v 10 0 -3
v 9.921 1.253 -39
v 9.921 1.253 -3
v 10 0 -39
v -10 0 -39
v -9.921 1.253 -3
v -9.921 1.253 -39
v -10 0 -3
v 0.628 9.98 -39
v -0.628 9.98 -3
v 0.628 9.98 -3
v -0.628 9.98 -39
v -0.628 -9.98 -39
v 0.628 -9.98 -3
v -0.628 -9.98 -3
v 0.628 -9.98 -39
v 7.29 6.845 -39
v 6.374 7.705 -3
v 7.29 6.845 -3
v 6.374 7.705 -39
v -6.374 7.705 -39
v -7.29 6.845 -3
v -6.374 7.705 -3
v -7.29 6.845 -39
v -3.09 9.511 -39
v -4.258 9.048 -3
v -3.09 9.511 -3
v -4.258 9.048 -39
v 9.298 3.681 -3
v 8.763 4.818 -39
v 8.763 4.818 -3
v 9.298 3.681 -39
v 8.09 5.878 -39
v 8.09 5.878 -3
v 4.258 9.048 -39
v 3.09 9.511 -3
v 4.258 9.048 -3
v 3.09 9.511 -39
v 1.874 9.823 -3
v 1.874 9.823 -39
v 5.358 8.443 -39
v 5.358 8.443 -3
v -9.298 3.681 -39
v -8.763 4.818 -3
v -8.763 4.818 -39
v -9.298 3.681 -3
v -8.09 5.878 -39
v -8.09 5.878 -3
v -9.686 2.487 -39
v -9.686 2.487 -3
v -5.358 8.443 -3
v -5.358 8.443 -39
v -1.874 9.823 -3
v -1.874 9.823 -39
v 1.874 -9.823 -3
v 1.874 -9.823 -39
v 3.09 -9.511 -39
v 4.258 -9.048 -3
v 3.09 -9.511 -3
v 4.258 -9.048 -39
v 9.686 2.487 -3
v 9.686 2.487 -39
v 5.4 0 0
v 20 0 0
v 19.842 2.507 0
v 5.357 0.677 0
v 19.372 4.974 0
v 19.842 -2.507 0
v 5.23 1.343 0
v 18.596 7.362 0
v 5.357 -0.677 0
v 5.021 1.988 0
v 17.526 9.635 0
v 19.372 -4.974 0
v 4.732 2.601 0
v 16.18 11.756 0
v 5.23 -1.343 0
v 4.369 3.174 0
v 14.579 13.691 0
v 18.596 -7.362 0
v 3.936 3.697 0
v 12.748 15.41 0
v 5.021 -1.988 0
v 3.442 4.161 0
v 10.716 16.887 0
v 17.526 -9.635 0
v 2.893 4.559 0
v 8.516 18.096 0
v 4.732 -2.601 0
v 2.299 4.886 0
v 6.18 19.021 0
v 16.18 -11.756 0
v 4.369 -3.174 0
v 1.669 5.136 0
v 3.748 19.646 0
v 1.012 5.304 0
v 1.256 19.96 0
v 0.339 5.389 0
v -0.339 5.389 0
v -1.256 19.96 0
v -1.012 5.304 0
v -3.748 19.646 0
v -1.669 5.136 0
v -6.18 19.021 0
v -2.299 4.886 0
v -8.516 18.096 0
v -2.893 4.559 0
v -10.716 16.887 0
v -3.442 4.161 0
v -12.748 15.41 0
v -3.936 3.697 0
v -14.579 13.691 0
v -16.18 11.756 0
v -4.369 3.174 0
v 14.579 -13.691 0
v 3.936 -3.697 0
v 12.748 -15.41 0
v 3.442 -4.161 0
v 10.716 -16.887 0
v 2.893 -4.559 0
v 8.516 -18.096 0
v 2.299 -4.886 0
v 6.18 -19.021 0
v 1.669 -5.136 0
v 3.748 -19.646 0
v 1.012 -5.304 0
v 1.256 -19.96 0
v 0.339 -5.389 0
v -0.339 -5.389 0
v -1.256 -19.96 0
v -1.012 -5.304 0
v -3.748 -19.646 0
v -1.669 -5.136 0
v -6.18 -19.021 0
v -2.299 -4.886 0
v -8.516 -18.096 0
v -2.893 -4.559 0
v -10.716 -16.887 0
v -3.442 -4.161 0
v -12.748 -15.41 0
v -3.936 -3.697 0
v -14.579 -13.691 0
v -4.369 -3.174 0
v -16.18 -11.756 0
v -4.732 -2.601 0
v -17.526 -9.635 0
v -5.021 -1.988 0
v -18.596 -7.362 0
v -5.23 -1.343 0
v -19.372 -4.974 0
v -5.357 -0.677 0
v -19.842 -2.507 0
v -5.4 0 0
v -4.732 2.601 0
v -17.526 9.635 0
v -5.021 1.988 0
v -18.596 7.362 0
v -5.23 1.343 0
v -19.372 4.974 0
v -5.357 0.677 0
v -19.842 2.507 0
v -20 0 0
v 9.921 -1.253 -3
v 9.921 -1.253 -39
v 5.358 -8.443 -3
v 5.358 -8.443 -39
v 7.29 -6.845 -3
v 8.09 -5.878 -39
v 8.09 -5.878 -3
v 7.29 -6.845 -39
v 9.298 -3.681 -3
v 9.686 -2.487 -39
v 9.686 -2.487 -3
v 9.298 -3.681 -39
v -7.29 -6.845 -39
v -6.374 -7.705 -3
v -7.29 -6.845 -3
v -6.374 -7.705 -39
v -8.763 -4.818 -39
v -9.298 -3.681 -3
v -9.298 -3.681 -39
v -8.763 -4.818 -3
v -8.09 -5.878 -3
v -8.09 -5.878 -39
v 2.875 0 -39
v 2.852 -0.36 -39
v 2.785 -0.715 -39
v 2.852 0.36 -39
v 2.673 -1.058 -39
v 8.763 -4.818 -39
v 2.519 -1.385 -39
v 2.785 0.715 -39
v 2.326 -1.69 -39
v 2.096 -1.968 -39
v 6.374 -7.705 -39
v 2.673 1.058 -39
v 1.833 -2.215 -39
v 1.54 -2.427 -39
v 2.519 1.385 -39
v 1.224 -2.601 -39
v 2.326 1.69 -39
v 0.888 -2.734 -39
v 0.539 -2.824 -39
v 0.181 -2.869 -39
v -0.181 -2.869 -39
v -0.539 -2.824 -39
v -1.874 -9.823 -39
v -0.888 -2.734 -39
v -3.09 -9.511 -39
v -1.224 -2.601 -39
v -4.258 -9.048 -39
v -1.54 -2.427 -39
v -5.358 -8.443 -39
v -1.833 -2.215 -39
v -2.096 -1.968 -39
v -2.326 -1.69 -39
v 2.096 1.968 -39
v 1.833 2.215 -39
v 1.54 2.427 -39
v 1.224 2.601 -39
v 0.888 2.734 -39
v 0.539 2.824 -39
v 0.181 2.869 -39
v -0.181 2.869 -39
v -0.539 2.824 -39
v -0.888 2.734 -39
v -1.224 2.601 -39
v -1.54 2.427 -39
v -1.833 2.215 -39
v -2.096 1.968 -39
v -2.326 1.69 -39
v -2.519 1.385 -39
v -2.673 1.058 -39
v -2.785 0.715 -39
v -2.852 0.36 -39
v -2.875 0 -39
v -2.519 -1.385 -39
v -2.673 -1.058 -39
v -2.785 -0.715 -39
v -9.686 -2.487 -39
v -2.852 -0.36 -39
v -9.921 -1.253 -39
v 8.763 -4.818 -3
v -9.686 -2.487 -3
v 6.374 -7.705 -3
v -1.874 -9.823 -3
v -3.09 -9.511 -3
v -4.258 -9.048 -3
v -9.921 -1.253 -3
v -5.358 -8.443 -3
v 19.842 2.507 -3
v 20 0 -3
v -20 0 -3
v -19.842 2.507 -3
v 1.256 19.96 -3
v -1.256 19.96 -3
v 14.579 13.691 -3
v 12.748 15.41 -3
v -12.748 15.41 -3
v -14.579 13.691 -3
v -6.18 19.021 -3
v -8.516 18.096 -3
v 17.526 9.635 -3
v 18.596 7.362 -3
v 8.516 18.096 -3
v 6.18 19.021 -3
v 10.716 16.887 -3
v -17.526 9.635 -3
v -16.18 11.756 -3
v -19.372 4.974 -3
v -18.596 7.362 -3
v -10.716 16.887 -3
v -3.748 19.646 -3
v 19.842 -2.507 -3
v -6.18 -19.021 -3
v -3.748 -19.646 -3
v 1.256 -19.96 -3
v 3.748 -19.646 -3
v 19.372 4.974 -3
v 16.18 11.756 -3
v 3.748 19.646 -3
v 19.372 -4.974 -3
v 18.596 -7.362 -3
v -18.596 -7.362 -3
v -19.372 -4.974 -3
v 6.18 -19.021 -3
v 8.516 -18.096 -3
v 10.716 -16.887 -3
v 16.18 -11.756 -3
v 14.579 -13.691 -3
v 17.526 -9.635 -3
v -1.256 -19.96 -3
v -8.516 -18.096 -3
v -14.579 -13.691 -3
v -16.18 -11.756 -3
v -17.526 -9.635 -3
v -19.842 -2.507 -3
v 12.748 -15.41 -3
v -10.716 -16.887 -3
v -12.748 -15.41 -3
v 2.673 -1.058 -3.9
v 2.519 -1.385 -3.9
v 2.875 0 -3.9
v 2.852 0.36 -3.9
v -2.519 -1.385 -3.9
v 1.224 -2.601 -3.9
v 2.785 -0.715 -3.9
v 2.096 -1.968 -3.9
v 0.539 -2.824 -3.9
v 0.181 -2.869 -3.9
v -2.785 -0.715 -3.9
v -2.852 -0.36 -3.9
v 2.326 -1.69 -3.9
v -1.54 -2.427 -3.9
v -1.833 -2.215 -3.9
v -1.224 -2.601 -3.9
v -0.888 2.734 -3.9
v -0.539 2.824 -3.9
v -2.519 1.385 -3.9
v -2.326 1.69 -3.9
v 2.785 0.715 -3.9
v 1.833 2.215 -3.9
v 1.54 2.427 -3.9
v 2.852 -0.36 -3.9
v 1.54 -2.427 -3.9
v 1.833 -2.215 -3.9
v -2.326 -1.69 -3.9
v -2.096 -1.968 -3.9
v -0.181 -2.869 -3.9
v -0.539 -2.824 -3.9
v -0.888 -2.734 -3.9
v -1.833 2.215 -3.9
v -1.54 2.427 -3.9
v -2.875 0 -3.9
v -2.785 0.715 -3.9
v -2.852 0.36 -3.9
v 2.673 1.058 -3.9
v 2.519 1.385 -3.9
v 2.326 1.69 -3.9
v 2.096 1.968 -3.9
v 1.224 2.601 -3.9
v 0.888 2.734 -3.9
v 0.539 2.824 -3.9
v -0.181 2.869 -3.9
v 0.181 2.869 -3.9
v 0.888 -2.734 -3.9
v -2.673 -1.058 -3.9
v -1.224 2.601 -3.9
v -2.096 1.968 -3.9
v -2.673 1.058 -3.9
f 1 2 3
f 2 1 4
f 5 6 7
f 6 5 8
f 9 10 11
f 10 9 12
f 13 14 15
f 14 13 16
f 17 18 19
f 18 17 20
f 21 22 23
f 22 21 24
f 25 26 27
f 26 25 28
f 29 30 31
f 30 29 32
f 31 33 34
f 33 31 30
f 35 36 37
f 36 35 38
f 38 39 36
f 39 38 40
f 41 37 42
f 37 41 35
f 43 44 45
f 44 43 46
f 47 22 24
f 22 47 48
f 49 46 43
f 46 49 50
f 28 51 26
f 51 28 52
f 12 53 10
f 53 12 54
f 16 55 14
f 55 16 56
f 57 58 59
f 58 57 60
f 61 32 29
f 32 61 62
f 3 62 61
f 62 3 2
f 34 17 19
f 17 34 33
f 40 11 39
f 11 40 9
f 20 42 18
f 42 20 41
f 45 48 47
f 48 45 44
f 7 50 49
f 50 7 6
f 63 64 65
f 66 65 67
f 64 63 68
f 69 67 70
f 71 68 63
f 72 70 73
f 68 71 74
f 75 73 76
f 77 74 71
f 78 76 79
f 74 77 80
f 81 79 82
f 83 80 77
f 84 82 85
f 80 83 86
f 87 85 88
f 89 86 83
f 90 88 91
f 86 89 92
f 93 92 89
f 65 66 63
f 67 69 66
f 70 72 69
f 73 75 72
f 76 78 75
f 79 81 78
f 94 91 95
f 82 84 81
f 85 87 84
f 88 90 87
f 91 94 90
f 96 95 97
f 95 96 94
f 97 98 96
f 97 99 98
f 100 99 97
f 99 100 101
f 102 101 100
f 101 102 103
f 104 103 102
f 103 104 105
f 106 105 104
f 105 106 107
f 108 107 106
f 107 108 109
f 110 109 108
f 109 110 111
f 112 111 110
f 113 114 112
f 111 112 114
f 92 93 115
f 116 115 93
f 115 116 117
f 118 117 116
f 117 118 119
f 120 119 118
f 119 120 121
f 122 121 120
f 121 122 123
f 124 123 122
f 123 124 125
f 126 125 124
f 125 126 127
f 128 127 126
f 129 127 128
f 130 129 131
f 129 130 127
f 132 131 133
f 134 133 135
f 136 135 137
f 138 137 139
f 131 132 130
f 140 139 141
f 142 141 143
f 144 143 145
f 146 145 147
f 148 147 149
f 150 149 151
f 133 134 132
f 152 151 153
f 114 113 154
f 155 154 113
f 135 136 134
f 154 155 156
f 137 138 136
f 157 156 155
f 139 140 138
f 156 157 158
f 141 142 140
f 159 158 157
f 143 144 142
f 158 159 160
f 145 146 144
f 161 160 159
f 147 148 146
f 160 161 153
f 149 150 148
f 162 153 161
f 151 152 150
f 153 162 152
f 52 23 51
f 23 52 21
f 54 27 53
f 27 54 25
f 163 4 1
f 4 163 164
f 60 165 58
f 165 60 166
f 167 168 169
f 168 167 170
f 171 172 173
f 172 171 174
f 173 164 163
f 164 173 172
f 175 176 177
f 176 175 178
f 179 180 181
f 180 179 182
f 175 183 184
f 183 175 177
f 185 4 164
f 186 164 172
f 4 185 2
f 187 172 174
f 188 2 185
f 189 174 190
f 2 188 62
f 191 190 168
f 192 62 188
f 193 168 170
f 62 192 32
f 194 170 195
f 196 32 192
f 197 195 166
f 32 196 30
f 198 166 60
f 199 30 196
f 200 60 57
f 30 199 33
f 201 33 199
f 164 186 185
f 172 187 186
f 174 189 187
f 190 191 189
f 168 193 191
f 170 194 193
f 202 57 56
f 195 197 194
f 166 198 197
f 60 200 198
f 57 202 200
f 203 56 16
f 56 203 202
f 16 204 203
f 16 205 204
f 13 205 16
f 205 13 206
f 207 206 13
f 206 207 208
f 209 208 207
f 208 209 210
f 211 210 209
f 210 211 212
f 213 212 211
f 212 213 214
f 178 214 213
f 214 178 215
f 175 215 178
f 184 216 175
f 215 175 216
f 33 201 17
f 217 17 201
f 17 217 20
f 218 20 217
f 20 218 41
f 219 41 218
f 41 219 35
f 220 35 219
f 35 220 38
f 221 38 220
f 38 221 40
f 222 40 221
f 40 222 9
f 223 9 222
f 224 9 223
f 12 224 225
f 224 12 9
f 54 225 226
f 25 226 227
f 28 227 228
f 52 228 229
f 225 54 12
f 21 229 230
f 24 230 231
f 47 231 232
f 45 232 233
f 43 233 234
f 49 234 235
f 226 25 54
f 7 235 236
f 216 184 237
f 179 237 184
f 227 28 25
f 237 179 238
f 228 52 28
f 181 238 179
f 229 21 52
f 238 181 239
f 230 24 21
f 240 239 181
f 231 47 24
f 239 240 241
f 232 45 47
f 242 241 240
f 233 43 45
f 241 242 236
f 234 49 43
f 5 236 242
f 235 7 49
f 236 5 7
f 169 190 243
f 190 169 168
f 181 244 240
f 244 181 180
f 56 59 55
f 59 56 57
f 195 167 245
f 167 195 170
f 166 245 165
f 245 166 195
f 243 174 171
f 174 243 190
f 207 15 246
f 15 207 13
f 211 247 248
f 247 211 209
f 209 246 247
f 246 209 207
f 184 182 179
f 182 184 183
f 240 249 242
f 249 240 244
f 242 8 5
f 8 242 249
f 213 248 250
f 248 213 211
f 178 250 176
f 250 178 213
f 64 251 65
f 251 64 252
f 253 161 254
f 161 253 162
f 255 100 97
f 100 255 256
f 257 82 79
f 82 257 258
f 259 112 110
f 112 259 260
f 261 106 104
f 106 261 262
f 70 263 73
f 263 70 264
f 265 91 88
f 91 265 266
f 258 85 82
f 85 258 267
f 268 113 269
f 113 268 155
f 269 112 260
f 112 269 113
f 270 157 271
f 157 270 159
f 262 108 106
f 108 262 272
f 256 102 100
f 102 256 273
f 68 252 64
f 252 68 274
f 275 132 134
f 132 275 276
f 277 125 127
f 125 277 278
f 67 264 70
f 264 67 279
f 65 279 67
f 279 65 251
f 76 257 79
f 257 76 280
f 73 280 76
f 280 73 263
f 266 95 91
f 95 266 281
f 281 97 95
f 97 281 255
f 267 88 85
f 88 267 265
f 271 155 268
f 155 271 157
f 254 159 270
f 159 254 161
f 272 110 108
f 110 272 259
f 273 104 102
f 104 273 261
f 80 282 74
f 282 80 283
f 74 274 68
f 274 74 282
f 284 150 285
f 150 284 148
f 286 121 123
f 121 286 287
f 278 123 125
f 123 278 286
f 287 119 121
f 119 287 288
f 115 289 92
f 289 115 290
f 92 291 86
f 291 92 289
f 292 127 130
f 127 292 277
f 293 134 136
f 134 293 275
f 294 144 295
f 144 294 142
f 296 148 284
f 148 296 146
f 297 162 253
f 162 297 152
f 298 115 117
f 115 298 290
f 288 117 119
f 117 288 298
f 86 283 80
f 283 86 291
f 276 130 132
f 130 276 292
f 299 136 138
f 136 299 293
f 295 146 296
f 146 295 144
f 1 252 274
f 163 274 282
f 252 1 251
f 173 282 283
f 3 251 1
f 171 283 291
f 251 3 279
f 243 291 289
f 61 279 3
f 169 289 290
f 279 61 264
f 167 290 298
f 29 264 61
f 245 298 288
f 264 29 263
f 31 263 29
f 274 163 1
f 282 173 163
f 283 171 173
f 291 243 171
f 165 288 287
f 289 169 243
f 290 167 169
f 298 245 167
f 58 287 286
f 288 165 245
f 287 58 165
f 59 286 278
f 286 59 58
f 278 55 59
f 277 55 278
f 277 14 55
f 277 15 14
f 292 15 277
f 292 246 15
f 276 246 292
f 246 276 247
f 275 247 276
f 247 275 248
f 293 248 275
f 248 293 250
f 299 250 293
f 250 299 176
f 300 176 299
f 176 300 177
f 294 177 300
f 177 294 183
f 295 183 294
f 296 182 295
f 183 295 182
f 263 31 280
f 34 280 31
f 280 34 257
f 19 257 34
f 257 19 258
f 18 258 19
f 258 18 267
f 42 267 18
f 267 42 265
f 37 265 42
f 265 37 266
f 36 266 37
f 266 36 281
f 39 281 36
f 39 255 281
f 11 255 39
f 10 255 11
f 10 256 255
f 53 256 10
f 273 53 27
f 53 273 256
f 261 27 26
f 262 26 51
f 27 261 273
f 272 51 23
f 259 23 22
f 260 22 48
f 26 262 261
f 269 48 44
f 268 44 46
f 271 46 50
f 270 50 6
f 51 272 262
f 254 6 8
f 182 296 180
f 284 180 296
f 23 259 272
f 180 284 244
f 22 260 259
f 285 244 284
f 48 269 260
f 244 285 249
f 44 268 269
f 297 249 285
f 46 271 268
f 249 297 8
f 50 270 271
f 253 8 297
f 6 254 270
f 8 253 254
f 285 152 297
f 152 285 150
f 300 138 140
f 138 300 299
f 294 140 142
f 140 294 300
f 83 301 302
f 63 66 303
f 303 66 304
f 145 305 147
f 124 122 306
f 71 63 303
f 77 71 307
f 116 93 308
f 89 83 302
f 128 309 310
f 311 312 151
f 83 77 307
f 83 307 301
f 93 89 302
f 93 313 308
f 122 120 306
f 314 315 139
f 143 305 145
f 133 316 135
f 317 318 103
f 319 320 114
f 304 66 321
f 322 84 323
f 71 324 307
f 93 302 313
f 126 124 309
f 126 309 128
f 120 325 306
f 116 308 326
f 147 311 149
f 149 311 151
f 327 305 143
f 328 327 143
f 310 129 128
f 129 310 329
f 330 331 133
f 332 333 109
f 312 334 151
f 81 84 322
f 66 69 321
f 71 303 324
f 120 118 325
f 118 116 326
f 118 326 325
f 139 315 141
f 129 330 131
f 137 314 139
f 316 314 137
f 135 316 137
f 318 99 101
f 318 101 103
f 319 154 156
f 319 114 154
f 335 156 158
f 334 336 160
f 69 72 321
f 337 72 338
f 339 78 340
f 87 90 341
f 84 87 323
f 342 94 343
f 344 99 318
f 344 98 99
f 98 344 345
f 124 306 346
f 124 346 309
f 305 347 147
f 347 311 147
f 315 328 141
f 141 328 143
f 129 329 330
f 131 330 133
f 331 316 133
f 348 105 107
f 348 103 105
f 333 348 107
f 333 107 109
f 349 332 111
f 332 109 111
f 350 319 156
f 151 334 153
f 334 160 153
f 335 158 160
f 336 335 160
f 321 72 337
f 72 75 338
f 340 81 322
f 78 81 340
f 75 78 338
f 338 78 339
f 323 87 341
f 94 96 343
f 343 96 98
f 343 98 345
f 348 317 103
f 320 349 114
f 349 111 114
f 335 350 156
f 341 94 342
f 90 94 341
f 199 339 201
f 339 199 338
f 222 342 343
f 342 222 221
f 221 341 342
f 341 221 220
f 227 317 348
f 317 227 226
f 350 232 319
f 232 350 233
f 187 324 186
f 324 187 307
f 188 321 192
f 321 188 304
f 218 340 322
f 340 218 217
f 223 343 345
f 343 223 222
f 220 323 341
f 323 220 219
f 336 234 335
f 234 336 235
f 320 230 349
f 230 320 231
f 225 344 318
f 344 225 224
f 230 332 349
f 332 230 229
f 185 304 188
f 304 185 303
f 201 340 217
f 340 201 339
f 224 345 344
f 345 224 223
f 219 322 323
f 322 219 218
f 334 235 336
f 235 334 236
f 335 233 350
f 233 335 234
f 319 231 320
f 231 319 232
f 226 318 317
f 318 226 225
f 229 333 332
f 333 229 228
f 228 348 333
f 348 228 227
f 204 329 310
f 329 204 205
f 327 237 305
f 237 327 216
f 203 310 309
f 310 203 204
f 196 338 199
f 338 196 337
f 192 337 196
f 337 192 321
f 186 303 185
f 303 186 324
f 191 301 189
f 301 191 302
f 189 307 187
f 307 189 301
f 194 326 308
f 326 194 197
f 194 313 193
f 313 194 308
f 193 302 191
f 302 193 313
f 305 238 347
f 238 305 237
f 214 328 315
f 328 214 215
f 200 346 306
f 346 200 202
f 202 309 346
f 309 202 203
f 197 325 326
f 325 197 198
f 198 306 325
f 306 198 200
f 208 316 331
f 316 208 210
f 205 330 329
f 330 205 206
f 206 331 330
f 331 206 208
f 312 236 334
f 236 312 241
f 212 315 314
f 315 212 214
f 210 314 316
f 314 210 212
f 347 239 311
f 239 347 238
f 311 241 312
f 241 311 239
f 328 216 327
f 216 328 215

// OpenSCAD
$fn = 50;


difference() {
	union() {
		translate(v = [0, 0, -39.0000000000]) {
			cylinder(h = 39, r = 10.0000000000);
		}
		translate(v = [0, 0, -3.0000000000]) {
			cylinder(h = 3, r = 20.0000000000);
		}
	}
	union() {
		translate(v = [0, 0, 0]) {
			rotate(a = [0, 0, 0]) {
				difference() {
					union() {
						#translate(v = [0, 0, -39.0000000000]) {
							cylinder(h = 39, r = 2.6000000000);
						}
						#translate(v = [0, 0, -3.9000000000]) {
							cylinder(h = 3.9000000000, r = 10.0000000000, r1 = 2.8750000000, r2 = 5.4000000000);
						}
						#translate(v = [0, 0, -39.0000000000]) {
							cylinder(h = 39, r = 2.8750000000);
						}
						#translate(v = [0, 0, -39.0000000000]) {
							cylinder(h = 39, r = 2.6000000000);
						}
					}
					union();
				}
			}
		}
	}
}
